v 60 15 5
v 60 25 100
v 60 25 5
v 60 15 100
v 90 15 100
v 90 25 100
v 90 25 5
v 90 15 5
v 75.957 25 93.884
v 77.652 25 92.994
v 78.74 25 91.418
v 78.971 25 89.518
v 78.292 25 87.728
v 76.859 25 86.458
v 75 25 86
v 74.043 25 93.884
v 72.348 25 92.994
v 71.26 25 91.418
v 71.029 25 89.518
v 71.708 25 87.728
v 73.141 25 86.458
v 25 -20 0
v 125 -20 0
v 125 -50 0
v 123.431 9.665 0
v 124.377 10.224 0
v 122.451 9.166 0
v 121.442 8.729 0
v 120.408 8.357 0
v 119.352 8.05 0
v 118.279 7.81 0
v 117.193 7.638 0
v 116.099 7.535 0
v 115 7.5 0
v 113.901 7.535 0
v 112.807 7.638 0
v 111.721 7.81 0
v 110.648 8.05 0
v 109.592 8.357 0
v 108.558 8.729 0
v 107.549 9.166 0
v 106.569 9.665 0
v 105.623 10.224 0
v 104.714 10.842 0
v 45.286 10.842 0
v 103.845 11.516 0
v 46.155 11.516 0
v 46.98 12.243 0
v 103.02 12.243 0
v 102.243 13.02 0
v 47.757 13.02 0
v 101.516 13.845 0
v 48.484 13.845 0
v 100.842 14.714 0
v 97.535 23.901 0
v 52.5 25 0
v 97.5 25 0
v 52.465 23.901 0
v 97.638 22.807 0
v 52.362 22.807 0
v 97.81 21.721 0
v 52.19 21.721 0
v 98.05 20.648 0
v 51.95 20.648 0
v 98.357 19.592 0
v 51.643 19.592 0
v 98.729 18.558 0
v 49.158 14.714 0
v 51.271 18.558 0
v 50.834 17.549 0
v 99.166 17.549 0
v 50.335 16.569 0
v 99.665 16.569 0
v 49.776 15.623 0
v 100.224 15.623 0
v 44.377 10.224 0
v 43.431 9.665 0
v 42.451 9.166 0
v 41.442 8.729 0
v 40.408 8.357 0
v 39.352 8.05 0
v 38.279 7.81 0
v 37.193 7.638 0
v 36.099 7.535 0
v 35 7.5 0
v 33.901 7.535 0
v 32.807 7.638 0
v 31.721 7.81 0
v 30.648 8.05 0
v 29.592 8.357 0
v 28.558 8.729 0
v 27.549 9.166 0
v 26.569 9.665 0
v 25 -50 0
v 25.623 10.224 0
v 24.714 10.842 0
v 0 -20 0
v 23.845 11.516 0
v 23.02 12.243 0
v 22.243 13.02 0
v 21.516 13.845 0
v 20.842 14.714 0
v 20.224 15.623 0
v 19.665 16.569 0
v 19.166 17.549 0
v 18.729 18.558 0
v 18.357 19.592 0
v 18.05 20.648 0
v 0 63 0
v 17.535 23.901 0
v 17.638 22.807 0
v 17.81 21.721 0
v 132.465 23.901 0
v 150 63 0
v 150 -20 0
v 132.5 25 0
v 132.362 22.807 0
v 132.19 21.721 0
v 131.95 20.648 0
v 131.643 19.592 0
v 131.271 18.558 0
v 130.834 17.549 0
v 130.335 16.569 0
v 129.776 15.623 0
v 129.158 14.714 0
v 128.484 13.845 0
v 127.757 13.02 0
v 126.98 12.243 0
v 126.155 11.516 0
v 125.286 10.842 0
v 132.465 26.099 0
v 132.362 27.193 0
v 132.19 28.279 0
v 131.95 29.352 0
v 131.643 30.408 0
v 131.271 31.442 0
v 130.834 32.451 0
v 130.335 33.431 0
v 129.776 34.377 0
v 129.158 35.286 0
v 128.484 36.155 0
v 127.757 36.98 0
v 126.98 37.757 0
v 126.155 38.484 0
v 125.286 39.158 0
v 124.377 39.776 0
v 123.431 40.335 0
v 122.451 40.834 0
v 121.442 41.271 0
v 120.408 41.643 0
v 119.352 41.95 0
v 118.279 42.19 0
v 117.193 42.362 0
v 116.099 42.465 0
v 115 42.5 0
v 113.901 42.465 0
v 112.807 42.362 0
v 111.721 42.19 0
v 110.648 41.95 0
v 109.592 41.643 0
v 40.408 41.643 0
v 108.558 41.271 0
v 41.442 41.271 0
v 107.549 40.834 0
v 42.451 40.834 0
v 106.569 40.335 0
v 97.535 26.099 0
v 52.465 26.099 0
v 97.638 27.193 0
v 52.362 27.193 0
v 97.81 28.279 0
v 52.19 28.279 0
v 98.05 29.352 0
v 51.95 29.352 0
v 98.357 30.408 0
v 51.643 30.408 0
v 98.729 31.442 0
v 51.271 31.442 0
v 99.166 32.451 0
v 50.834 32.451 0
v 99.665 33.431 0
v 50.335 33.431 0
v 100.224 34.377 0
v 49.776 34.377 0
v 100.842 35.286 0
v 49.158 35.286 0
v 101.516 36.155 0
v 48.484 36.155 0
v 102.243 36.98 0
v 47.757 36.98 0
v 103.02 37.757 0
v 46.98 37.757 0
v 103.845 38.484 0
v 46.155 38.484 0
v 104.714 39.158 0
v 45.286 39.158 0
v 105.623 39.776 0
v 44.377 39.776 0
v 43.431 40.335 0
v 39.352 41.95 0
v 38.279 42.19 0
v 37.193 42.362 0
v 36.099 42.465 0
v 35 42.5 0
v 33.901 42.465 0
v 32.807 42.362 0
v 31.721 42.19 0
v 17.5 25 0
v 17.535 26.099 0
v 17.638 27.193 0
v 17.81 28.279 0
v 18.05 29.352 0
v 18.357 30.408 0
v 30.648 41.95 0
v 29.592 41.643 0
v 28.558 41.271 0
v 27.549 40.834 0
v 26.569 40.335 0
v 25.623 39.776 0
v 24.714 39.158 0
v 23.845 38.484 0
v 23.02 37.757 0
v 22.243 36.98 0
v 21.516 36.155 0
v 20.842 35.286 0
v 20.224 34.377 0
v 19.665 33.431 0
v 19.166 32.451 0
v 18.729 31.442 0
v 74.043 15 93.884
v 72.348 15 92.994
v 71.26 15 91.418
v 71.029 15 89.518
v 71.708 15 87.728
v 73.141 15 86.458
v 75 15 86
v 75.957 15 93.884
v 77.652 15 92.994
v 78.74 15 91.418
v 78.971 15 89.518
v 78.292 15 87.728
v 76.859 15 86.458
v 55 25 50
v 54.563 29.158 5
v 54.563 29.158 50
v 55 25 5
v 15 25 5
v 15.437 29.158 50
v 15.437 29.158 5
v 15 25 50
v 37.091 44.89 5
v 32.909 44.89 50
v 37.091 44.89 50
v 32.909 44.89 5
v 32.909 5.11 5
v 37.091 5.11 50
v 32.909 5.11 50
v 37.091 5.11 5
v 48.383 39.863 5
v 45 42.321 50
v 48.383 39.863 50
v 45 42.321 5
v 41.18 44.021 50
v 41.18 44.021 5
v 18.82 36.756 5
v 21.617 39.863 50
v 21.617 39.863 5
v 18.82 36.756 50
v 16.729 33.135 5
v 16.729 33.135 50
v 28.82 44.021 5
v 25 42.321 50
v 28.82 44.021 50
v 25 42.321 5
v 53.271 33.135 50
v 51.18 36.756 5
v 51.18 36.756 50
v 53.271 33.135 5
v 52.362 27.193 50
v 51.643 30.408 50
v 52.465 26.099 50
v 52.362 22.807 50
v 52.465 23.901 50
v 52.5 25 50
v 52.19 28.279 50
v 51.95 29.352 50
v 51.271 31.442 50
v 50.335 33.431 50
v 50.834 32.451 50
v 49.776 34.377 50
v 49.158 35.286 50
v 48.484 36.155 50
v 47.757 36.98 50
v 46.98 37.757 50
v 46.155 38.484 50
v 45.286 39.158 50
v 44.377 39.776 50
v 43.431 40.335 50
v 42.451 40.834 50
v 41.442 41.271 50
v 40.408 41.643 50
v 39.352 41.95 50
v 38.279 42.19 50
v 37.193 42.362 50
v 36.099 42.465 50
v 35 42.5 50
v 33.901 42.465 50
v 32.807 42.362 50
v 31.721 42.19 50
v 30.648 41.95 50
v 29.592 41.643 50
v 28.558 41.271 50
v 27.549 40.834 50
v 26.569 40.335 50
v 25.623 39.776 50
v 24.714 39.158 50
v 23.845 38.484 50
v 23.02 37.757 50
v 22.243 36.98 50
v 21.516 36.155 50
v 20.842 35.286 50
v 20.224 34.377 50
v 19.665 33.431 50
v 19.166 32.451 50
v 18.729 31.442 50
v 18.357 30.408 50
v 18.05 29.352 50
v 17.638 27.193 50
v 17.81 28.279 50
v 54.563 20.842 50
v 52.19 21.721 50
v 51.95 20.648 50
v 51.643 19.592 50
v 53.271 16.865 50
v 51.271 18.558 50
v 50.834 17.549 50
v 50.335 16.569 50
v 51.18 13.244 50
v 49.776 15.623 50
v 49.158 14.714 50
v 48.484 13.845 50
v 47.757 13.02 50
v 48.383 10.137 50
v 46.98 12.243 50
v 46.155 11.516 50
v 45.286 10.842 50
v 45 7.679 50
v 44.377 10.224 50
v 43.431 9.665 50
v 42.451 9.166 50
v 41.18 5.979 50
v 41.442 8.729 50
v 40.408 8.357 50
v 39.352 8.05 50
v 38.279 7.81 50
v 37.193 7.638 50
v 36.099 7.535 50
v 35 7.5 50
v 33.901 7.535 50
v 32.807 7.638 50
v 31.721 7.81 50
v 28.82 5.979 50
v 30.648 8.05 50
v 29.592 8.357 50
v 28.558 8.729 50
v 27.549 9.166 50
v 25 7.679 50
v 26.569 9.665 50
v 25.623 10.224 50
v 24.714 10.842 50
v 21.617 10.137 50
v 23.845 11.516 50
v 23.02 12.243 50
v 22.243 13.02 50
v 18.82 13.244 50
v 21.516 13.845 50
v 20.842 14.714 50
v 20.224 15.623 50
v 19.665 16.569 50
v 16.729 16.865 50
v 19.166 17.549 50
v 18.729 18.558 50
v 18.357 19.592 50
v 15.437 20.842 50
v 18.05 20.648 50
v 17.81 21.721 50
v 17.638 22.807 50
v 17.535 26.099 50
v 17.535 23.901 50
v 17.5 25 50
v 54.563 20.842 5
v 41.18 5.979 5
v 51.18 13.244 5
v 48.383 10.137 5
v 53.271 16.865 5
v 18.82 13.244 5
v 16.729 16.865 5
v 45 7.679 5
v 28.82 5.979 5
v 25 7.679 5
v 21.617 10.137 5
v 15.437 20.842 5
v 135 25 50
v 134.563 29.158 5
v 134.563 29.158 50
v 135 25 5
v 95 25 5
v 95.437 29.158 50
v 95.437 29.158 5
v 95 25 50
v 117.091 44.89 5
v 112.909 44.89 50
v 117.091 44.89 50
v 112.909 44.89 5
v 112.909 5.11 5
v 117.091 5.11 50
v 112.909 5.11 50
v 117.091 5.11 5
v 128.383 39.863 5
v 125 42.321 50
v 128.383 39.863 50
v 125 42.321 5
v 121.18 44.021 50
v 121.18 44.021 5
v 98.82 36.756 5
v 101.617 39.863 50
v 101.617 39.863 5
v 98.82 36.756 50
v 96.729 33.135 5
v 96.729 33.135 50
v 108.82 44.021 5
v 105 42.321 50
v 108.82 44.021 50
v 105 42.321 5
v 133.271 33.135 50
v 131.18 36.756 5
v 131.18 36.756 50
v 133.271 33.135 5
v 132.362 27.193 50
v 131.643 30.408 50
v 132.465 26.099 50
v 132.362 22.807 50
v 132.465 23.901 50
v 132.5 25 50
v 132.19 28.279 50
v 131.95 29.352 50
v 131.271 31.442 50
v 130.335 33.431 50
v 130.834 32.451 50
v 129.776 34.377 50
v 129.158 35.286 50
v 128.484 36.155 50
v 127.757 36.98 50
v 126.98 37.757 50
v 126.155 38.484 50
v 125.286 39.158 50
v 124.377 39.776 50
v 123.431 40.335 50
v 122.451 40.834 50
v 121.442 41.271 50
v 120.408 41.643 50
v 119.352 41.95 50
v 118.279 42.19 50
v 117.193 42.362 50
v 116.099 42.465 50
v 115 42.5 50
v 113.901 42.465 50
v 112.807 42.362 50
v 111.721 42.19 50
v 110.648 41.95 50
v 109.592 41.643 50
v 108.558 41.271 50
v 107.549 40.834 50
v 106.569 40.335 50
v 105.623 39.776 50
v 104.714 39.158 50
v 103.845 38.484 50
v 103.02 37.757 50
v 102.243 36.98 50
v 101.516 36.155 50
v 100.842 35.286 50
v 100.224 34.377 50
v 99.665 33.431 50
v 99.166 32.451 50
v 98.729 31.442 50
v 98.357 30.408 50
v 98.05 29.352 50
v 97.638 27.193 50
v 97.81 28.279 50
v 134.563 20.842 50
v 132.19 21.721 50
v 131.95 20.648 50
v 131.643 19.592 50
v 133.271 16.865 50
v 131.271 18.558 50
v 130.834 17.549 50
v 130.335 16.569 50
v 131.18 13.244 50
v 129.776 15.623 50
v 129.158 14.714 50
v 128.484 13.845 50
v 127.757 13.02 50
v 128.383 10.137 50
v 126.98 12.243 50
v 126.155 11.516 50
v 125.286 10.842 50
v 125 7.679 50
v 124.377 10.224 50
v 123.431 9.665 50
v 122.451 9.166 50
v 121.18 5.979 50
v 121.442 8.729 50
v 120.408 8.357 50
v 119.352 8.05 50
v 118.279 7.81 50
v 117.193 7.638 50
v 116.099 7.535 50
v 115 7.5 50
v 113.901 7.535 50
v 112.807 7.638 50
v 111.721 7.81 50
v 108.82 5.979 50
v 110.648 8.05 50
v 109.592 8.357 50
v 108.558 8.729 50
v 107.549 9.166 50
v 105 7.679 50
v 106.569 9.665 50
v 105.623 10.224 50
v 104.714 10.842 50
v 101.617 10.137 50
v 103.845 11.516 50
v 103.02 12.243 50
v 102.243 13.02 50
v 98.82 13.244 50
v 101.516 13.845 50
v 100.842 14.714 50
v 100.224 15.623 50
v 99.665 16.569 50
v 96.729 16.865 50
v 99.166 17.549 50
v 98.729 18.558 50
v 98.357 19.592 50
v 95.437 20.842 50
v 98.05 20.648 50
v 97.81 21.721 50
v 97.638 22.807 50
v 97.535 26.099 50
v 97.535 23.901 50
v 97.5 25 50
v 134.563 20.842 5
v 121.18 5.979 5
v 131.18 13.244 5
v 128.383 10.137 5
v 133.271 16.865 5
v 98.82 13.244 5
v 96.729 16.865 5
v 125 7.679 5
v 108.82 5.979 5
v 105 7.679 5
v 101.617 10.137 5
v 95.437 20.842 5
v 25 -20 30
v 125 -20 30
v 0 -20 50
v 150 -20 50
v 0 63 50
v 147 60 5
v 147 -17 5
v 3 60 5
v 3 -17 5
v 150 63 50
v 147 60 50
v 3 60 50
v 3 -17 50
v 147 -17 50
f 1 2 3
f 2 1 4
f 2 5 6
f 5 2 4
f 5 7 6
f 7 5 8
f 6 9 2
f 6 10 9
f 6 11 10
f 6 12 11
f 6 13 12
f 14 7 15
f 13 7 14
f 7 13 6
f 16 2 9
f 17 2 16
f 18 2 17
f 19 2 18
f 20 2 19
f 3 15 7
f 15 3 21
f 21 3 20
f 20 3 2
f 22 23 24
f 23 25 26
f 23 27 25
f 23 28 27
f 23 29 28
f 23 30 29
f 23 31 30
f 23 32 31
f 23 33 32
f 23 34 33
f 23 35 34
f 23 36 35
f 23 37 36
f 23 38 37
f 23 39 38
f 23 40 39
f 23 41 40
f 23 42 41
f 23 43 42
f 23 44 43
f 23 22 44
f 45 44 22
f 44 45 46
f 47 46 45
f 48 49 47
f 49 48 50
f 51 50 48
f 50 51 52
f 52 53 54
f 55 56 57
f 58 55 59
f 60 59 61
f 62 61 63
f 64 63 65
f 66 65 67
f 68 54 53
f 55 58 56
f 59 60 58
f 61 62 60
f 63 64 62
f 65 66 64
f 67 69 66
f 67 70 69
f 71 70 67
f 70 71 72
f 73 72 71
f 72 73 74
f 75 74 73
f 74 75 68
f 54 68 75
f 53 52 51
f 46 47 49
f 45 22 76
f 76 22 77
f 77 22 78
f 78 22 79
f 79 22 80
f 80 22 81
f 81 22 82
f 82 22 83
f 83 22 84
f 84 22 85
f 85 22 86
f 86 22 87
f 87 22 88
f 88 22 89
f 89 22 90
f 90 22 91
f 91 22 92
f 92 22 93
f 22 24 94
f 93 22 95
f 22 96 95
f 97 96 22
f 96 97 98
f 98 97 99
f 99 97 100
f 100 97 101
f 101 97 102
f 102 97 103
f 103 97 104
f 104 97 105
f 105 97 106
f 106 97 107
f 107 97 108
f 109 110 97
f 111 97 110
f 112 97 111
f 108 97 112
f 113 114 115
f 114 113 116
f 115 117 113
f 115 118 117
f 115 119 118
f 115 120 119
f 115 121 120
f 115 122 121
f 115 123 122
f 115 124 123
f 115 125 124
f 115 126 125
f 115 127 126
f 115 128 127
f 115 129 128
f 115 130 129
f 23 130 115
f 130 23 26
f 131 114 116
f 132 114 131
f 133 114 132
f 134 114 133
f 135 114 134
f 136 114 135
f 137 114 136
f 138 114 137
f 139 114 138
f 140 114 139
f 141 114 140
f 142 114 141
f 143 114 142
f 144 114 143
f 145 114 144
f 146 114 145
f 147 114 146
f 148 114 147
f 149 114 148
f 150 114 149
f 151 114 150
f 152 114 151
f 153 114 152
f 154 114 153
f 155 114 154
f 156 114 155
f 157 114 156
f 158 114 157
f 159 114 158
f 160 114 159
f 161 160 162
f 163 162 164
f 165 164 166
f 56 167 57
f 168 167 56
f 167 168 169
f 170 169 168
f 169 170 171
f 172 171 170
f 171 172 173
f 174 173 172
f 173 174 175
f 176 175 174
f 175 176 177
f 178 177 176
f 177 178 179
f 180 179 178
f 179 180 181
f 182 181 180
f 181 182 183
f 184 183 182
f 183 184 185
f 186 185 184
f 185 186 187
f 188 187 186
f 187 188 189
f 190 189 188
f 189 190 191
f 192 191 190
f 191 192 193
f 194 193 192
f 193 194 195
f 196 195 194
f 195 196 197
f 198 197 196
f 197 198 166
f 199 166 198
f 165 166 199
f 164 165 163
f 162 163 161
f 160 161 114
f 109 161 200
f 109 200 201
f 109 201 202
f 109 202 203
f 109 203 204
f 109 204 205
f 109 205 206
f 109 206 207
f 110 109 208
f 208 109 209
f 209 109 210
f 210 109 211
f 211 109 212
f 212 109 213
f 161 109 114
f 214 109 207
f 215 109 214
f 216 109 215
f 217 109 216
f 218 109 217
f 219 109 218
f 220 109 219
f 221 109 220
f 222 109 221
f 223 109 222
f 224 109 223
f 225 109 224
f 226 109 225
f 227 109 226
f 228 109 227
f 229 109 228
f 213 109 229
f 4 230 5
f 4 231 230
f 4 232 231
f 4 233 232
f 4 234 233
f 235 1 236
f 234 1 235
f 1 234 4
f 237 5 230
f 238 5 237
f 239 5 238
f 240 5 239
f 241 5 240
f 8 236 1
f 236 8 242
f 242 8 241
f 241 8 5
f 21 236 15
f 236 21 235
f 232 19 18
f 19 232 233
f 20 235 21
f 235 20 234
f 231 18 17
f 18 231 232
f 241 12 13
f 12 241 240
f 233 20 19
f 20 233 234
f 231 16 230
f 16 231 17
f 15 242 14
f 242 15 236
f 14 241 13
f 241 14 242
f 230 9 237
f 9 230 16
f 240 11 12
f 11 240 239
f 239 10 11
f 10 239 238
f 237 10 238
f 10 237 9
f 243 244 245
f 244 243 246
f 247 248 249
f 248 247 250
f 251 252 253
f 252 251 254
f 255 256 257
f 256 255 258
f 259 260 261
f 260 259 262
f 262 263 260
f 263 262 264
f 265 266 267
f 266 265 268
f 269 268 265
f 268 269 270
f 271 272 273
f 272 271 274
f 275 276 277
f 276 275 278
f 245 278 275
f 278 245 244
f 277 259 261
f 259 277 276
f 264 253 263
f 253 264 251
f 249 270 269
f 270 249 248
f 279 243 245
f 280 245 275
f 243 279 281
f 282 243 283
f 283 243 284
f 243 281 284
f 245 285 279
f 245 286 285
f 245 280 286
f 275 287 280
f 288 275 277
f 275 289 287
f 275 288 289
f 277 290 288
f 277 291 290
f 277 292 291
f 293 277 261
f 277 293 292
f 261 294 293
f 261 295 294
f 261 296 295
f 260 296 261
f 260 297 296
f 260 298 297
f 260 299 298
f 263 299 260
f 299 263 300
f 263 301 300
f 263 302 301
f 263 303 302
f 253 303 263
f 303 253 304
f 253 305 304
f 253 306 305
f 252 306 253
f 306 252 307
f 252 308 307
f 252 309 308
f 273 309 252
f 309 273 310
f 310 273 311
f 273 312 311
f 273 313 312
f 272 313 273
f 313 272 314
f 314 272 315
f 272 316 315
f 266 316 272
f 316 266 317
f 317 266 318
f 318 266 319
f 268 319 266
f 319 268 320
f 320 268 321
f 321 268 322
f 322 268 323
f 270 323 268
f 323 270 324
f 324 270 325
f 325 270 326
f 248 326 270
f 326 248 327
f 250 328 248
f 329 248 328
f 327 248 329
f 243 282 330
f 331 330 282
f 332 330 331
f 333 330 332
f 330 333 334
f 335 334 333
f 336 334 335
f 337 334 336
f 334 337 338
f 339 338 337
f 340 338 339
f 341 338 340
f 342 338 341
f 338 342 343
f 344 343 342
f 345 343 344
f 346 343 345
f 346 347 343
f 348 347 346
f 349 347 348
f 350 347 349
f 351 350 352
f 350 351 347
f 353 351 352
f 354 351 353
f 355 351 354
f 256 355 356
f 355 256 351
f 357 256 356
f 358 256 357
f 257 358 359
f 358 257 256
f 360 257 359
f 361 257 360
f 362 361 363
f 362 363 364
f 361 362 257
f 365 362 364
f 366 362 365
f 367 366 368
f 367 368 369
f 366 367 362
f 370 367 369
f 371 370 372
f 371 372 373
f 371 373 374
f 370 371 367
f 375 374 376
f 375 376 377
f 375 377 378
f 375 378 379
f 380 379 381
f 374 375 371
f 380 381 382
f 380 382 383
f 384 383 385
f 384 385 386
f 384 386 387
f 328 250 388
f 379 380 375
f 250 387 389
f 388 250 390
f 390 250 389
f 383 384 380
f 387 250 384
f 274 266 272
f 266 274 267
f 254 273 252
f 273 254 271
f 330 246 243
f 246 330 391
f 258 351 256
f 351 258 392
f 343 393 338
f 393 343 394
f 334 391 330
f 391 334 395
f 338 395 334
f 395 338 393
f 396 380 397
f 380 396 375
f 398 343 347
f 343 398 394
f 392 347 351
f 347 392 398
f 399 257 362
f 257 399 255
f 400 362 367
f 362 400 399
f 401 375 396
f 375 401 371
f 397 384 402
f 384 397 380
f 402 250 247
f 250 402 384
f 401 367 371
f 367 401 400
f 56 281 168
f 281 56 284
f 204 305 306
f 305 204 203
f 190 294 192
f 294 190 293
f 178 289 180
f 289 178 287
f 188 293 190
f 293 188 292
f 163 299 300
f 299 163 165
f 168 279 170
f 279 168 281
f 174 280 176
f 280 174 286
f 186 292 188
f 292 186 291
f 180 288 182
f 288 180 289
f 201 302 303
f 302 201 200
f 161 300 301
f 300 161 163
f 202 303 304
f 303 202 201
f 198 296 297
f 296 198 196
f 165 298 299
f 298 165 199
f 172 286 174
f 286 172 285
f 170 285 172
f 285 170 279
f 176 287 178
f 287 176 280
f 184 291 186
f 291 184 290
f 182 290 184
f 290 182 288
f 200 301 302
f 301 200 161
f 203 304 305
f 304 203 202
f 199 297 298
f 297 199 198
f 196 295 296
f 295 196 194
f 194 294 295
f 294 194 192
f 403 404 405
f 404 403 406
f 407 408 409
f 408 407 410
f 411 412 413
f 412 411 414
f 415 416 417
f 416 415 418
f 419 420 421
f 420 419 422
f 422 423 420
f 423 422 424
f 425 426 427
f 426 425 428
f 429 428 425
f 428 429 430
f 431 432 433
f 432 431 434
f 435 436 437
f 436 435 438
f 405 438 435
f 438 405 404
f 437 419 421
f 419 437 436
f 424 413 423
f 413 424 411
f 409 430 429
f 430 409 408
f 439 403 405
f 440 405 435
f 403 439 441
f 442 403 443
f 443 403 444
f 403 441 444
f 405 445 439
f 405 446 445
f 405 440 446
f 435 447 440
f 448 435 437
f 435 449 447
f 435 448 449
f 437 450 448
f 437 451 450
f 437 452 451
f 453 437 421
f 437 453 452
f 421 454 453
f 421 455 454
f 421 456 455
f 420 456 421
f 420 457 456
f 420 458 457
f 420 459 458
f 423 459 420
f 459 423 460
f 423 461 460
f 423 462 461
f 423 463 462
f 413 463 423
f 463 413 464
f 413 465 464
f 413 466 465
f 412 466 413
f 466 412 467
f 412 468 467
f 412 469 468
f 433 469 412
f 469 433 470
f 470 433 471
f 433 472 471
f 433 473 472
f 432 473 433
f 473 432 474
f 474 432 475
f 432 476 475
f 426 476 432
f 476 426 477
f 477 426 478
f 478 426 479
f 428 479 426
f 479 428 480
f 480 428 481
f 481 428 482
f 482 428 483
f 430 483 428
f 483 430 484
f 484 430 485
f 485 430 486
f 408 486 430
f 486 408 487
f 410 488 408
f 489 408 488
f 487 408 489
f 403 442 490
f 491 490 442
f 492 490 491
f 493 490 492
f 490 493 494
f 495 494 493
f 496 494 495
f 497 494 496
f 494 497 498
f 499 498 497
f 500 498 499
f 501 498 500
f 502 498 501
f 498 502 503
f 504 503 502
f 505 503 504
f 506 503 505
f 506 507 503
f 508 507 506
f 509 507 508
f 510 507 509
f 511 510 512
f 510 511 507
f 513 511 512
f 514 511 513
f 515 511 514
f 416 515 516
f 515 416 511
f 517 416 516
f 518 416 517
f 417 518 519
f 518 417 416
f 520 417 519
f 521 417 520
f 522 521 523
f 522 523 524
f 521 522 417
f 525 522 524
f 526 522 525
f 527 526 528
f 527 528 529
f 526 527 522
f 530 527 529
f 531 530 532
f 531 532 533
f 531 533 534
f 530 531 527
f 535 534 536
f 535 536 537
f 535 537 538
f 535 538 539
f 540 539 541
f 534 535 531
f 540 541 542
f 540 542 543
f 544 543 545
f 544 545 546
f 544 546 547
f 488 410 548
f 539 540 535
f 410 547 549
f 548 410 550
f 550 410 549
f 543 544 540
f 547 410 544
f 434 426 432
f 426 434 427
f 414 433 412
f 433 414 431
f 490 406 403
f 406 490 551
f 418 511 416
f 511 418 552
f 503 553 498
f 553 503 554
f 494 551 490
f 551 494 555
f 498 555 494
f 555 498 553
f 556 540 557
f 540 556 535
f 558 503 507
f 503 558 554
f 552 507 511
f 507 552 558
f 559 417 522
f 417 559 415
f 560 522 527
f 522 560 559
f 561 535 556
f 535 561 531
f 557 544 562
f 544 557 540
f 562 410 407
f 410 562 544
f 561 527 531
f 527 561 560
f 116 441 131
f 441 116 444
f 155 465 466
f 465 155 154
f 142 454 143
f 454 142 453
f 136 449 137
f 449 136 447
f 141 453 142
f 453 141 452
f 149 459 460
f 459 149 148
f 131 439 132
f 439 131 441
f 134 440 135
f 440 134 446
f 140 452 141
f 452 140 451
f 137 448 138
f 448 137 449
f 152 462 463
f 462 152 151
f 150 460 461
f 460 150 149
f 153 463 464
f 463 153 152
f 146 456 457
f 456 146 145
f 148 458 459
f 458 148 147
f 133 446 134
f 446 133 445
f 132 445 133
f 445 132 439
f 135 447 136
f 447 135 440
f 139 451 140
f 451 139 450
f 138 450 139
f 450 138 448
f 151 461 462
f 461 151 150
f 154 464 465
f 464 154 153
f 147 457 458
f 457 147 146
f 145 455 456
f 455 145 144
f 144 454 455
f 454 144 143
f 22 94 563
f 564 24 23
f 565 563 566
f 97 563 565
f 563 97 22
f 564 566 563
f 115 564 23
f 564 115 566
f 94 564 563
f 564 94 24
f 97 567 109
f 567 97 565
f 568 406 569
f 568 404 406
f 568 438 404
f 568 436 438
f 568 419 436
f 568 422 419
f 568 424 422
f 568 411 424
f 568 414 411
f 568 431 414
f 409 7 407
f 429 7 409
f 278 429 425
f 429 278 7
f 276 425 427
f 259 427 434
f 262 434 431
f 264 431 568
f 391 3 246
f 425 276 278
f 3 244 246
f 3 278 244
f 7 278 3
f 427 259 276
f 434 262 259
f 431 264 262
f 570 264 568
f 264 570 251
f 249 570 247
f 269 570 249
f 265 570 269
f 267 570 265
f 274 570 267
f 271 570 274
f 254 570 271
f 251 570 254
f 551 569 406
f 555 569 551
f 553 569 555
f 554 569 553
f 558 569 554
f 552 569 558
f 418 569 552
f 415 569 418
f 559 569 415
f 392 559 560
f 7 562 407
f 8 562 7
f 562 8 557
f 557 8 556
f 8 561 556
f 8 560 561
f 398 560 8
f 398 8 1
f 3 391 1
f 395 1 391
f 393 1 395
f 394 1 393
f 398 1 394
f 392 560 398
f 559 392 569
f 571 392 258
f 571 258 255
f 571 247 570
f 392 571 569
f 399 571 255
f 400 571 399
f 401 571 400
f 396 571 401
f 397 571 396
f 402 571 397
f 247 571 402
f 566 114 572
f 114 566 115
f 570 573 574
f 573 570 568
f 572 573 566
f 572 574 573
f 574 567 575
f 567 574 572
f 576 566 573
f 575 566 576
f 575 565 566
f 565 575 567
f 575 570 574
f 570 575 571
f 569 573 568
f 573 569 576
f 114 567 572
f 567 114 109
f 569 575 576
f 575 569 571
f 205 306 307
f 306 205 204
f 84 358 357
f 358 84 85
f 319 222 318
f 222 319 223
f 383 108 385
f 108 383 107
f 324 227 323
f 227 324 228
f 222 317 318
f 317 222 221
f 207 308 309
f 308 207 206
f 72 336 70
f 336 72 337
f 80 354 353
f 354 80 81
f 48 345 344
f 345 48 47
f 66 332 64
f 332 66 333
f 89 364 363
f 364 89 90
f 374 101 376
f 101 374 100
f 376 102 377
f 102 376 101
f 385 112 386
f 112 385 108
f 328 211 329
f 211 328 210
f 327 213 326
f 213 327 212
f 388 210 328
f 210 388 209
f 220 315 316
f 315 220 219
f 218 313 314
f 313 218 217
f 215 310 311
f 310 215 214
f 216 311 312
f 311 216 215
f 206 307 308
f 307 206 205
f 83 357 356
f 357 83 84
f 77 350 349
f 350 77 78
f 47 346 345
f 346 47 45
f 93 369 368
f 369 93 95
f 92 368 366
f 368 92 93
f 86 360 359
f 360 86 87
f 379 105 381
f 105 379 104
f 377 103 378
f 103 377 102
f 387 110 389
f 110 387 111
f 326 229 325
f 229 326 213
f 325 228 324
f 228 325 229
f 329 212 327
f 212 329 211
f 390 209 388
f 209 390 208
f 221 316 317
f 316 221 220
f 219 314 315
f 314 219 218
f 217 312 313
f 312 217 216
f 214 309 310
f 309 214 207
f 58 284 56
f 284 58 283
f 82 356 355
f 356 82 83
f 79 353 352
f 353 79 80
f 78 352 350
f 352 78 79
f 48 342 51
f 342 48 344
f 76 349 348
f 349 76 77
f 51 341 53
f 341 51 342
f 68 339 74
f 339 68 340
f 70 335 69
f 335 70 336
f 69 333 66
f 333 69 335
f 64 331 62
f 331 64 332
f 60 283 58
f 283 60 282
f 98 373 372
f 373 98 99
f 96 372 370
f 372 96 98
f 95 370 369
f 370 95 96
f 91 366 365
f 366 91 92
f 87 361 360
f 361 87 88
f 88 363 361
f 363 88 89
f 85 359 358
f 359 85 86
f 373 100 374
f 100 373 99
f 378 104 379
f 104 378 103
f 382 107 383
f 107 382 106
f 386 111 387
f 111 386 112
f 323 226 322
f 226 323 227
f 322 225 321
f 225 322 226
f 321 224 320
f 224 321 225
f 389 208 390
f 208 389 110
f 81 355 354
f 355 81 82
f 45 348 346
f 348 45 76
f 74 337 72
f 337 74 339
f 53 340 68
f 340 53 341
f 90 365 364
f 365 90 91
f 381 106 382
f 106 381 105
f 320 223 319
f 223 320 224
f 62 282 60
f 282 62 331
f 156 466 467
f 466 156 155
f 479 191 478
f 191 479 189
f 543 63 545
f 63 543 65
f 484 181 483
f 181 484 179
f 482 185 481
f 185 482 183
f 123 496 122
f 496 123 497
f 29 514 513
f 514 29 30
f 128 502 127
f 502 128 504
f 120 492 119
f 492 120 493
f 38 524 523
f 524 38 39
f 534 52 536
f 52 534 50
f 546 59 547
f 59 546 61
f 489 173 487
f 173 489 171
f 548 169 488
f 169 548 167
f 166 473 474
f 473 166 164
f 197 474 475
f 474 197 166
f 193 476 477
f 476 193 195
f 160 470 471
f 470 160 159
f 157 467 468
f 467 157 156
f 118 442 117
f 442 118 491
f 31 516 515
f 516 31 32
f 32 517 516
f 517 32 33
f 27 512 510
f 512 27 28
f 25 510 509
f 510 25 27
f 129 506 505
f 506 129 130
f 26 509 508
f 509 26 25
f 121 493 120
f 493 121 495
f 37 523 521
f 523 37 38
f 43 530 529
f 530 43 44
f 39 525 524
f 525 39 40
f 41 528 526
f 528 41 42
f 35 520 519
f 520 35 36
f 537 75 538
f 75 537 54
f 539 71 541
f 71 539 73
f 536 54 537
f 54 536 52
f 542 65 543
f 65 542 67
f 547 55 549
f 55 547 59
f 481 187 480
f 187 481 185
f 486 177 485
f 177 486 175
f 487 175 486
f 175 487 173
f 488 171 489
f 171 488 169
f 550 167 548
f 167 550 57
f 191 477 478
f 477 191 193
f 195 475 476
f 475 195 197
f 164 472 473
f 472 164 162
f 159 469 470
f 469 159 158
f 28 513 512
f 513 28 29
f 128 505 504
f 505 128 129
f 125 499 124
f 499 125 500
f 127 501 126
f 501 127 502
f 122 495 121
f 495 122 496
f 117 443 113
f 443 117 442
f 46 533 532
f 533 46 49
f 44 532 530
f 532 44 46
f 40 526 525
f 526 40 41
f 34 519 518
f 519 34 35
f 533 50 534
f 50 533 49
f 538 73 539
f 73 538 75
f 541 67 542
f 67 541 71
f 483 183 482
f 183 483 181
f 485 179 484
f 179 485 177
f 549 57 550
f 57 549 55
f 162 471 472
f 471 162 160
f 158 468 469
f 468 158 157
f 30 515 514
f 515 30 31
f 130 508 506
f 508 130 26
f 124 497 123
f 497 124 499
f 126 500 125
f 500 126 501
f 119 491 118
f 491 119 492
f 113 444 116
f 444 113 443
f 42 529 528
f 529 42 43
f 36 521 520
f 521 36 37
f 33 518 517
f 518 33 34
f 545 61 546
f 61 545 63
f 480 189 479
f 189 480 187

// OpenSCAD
slider2();

module rodholder2(){
    difference(){
        cylinder(50, 20, 20);
        translate([0,0,-5]){
            cylinder(60, 17.5, 17.5, $fn=100);
        }
    }
}

module slider2(){
    difference(){
    slider();
    translate([35,25,-5]){
        cylinder(60, 17.5, 17.5, $fn=100);
    }
        translate([115,25,-5]){
        cylinder(60, 17.5, 17.5, $fn=100);
    }
    }
    }

module slider(){
    //floor
    translate([0,-20,0]){
        cube([150,80,5]);
    }
    
    //left wall
    translate([0,-20,0]){
        cube([3, 80, 50]);
    }
    
    //right wall
    translate([147,-20,0]){
        cube([3, 80, 50]);
    }
    
    //back wall
    translate([0,60,0]){
        cube([150, 3, 50]);
    }
    
    //front wall
    translate([0,-20,0]){
        cube([150, 3, 50]);
    }
    
    // trigger
    translate([60, 15,0]){
        
        difference(){
        cube([30,10,100]);
        translate([15,-20,90]){
            rotate([0,90,90]){
                cylinder(40,4,4);
            }
        }
    }
        
        }
        //rod sleeves
    translate([35,25,0]){
        rodholder2();
        }
        
    translate([115,25,0]){
        rodholder2();
        }
        
    //lever holder
    translate([25,-50,0]){
        difference(){
            cube([100, 30, 30]);
            translate([-5,0,0]){
                rotate([45,0,0]){
                    cube([110, 43, 30]);
                }
            }
        }

    }    
    
    
    }
